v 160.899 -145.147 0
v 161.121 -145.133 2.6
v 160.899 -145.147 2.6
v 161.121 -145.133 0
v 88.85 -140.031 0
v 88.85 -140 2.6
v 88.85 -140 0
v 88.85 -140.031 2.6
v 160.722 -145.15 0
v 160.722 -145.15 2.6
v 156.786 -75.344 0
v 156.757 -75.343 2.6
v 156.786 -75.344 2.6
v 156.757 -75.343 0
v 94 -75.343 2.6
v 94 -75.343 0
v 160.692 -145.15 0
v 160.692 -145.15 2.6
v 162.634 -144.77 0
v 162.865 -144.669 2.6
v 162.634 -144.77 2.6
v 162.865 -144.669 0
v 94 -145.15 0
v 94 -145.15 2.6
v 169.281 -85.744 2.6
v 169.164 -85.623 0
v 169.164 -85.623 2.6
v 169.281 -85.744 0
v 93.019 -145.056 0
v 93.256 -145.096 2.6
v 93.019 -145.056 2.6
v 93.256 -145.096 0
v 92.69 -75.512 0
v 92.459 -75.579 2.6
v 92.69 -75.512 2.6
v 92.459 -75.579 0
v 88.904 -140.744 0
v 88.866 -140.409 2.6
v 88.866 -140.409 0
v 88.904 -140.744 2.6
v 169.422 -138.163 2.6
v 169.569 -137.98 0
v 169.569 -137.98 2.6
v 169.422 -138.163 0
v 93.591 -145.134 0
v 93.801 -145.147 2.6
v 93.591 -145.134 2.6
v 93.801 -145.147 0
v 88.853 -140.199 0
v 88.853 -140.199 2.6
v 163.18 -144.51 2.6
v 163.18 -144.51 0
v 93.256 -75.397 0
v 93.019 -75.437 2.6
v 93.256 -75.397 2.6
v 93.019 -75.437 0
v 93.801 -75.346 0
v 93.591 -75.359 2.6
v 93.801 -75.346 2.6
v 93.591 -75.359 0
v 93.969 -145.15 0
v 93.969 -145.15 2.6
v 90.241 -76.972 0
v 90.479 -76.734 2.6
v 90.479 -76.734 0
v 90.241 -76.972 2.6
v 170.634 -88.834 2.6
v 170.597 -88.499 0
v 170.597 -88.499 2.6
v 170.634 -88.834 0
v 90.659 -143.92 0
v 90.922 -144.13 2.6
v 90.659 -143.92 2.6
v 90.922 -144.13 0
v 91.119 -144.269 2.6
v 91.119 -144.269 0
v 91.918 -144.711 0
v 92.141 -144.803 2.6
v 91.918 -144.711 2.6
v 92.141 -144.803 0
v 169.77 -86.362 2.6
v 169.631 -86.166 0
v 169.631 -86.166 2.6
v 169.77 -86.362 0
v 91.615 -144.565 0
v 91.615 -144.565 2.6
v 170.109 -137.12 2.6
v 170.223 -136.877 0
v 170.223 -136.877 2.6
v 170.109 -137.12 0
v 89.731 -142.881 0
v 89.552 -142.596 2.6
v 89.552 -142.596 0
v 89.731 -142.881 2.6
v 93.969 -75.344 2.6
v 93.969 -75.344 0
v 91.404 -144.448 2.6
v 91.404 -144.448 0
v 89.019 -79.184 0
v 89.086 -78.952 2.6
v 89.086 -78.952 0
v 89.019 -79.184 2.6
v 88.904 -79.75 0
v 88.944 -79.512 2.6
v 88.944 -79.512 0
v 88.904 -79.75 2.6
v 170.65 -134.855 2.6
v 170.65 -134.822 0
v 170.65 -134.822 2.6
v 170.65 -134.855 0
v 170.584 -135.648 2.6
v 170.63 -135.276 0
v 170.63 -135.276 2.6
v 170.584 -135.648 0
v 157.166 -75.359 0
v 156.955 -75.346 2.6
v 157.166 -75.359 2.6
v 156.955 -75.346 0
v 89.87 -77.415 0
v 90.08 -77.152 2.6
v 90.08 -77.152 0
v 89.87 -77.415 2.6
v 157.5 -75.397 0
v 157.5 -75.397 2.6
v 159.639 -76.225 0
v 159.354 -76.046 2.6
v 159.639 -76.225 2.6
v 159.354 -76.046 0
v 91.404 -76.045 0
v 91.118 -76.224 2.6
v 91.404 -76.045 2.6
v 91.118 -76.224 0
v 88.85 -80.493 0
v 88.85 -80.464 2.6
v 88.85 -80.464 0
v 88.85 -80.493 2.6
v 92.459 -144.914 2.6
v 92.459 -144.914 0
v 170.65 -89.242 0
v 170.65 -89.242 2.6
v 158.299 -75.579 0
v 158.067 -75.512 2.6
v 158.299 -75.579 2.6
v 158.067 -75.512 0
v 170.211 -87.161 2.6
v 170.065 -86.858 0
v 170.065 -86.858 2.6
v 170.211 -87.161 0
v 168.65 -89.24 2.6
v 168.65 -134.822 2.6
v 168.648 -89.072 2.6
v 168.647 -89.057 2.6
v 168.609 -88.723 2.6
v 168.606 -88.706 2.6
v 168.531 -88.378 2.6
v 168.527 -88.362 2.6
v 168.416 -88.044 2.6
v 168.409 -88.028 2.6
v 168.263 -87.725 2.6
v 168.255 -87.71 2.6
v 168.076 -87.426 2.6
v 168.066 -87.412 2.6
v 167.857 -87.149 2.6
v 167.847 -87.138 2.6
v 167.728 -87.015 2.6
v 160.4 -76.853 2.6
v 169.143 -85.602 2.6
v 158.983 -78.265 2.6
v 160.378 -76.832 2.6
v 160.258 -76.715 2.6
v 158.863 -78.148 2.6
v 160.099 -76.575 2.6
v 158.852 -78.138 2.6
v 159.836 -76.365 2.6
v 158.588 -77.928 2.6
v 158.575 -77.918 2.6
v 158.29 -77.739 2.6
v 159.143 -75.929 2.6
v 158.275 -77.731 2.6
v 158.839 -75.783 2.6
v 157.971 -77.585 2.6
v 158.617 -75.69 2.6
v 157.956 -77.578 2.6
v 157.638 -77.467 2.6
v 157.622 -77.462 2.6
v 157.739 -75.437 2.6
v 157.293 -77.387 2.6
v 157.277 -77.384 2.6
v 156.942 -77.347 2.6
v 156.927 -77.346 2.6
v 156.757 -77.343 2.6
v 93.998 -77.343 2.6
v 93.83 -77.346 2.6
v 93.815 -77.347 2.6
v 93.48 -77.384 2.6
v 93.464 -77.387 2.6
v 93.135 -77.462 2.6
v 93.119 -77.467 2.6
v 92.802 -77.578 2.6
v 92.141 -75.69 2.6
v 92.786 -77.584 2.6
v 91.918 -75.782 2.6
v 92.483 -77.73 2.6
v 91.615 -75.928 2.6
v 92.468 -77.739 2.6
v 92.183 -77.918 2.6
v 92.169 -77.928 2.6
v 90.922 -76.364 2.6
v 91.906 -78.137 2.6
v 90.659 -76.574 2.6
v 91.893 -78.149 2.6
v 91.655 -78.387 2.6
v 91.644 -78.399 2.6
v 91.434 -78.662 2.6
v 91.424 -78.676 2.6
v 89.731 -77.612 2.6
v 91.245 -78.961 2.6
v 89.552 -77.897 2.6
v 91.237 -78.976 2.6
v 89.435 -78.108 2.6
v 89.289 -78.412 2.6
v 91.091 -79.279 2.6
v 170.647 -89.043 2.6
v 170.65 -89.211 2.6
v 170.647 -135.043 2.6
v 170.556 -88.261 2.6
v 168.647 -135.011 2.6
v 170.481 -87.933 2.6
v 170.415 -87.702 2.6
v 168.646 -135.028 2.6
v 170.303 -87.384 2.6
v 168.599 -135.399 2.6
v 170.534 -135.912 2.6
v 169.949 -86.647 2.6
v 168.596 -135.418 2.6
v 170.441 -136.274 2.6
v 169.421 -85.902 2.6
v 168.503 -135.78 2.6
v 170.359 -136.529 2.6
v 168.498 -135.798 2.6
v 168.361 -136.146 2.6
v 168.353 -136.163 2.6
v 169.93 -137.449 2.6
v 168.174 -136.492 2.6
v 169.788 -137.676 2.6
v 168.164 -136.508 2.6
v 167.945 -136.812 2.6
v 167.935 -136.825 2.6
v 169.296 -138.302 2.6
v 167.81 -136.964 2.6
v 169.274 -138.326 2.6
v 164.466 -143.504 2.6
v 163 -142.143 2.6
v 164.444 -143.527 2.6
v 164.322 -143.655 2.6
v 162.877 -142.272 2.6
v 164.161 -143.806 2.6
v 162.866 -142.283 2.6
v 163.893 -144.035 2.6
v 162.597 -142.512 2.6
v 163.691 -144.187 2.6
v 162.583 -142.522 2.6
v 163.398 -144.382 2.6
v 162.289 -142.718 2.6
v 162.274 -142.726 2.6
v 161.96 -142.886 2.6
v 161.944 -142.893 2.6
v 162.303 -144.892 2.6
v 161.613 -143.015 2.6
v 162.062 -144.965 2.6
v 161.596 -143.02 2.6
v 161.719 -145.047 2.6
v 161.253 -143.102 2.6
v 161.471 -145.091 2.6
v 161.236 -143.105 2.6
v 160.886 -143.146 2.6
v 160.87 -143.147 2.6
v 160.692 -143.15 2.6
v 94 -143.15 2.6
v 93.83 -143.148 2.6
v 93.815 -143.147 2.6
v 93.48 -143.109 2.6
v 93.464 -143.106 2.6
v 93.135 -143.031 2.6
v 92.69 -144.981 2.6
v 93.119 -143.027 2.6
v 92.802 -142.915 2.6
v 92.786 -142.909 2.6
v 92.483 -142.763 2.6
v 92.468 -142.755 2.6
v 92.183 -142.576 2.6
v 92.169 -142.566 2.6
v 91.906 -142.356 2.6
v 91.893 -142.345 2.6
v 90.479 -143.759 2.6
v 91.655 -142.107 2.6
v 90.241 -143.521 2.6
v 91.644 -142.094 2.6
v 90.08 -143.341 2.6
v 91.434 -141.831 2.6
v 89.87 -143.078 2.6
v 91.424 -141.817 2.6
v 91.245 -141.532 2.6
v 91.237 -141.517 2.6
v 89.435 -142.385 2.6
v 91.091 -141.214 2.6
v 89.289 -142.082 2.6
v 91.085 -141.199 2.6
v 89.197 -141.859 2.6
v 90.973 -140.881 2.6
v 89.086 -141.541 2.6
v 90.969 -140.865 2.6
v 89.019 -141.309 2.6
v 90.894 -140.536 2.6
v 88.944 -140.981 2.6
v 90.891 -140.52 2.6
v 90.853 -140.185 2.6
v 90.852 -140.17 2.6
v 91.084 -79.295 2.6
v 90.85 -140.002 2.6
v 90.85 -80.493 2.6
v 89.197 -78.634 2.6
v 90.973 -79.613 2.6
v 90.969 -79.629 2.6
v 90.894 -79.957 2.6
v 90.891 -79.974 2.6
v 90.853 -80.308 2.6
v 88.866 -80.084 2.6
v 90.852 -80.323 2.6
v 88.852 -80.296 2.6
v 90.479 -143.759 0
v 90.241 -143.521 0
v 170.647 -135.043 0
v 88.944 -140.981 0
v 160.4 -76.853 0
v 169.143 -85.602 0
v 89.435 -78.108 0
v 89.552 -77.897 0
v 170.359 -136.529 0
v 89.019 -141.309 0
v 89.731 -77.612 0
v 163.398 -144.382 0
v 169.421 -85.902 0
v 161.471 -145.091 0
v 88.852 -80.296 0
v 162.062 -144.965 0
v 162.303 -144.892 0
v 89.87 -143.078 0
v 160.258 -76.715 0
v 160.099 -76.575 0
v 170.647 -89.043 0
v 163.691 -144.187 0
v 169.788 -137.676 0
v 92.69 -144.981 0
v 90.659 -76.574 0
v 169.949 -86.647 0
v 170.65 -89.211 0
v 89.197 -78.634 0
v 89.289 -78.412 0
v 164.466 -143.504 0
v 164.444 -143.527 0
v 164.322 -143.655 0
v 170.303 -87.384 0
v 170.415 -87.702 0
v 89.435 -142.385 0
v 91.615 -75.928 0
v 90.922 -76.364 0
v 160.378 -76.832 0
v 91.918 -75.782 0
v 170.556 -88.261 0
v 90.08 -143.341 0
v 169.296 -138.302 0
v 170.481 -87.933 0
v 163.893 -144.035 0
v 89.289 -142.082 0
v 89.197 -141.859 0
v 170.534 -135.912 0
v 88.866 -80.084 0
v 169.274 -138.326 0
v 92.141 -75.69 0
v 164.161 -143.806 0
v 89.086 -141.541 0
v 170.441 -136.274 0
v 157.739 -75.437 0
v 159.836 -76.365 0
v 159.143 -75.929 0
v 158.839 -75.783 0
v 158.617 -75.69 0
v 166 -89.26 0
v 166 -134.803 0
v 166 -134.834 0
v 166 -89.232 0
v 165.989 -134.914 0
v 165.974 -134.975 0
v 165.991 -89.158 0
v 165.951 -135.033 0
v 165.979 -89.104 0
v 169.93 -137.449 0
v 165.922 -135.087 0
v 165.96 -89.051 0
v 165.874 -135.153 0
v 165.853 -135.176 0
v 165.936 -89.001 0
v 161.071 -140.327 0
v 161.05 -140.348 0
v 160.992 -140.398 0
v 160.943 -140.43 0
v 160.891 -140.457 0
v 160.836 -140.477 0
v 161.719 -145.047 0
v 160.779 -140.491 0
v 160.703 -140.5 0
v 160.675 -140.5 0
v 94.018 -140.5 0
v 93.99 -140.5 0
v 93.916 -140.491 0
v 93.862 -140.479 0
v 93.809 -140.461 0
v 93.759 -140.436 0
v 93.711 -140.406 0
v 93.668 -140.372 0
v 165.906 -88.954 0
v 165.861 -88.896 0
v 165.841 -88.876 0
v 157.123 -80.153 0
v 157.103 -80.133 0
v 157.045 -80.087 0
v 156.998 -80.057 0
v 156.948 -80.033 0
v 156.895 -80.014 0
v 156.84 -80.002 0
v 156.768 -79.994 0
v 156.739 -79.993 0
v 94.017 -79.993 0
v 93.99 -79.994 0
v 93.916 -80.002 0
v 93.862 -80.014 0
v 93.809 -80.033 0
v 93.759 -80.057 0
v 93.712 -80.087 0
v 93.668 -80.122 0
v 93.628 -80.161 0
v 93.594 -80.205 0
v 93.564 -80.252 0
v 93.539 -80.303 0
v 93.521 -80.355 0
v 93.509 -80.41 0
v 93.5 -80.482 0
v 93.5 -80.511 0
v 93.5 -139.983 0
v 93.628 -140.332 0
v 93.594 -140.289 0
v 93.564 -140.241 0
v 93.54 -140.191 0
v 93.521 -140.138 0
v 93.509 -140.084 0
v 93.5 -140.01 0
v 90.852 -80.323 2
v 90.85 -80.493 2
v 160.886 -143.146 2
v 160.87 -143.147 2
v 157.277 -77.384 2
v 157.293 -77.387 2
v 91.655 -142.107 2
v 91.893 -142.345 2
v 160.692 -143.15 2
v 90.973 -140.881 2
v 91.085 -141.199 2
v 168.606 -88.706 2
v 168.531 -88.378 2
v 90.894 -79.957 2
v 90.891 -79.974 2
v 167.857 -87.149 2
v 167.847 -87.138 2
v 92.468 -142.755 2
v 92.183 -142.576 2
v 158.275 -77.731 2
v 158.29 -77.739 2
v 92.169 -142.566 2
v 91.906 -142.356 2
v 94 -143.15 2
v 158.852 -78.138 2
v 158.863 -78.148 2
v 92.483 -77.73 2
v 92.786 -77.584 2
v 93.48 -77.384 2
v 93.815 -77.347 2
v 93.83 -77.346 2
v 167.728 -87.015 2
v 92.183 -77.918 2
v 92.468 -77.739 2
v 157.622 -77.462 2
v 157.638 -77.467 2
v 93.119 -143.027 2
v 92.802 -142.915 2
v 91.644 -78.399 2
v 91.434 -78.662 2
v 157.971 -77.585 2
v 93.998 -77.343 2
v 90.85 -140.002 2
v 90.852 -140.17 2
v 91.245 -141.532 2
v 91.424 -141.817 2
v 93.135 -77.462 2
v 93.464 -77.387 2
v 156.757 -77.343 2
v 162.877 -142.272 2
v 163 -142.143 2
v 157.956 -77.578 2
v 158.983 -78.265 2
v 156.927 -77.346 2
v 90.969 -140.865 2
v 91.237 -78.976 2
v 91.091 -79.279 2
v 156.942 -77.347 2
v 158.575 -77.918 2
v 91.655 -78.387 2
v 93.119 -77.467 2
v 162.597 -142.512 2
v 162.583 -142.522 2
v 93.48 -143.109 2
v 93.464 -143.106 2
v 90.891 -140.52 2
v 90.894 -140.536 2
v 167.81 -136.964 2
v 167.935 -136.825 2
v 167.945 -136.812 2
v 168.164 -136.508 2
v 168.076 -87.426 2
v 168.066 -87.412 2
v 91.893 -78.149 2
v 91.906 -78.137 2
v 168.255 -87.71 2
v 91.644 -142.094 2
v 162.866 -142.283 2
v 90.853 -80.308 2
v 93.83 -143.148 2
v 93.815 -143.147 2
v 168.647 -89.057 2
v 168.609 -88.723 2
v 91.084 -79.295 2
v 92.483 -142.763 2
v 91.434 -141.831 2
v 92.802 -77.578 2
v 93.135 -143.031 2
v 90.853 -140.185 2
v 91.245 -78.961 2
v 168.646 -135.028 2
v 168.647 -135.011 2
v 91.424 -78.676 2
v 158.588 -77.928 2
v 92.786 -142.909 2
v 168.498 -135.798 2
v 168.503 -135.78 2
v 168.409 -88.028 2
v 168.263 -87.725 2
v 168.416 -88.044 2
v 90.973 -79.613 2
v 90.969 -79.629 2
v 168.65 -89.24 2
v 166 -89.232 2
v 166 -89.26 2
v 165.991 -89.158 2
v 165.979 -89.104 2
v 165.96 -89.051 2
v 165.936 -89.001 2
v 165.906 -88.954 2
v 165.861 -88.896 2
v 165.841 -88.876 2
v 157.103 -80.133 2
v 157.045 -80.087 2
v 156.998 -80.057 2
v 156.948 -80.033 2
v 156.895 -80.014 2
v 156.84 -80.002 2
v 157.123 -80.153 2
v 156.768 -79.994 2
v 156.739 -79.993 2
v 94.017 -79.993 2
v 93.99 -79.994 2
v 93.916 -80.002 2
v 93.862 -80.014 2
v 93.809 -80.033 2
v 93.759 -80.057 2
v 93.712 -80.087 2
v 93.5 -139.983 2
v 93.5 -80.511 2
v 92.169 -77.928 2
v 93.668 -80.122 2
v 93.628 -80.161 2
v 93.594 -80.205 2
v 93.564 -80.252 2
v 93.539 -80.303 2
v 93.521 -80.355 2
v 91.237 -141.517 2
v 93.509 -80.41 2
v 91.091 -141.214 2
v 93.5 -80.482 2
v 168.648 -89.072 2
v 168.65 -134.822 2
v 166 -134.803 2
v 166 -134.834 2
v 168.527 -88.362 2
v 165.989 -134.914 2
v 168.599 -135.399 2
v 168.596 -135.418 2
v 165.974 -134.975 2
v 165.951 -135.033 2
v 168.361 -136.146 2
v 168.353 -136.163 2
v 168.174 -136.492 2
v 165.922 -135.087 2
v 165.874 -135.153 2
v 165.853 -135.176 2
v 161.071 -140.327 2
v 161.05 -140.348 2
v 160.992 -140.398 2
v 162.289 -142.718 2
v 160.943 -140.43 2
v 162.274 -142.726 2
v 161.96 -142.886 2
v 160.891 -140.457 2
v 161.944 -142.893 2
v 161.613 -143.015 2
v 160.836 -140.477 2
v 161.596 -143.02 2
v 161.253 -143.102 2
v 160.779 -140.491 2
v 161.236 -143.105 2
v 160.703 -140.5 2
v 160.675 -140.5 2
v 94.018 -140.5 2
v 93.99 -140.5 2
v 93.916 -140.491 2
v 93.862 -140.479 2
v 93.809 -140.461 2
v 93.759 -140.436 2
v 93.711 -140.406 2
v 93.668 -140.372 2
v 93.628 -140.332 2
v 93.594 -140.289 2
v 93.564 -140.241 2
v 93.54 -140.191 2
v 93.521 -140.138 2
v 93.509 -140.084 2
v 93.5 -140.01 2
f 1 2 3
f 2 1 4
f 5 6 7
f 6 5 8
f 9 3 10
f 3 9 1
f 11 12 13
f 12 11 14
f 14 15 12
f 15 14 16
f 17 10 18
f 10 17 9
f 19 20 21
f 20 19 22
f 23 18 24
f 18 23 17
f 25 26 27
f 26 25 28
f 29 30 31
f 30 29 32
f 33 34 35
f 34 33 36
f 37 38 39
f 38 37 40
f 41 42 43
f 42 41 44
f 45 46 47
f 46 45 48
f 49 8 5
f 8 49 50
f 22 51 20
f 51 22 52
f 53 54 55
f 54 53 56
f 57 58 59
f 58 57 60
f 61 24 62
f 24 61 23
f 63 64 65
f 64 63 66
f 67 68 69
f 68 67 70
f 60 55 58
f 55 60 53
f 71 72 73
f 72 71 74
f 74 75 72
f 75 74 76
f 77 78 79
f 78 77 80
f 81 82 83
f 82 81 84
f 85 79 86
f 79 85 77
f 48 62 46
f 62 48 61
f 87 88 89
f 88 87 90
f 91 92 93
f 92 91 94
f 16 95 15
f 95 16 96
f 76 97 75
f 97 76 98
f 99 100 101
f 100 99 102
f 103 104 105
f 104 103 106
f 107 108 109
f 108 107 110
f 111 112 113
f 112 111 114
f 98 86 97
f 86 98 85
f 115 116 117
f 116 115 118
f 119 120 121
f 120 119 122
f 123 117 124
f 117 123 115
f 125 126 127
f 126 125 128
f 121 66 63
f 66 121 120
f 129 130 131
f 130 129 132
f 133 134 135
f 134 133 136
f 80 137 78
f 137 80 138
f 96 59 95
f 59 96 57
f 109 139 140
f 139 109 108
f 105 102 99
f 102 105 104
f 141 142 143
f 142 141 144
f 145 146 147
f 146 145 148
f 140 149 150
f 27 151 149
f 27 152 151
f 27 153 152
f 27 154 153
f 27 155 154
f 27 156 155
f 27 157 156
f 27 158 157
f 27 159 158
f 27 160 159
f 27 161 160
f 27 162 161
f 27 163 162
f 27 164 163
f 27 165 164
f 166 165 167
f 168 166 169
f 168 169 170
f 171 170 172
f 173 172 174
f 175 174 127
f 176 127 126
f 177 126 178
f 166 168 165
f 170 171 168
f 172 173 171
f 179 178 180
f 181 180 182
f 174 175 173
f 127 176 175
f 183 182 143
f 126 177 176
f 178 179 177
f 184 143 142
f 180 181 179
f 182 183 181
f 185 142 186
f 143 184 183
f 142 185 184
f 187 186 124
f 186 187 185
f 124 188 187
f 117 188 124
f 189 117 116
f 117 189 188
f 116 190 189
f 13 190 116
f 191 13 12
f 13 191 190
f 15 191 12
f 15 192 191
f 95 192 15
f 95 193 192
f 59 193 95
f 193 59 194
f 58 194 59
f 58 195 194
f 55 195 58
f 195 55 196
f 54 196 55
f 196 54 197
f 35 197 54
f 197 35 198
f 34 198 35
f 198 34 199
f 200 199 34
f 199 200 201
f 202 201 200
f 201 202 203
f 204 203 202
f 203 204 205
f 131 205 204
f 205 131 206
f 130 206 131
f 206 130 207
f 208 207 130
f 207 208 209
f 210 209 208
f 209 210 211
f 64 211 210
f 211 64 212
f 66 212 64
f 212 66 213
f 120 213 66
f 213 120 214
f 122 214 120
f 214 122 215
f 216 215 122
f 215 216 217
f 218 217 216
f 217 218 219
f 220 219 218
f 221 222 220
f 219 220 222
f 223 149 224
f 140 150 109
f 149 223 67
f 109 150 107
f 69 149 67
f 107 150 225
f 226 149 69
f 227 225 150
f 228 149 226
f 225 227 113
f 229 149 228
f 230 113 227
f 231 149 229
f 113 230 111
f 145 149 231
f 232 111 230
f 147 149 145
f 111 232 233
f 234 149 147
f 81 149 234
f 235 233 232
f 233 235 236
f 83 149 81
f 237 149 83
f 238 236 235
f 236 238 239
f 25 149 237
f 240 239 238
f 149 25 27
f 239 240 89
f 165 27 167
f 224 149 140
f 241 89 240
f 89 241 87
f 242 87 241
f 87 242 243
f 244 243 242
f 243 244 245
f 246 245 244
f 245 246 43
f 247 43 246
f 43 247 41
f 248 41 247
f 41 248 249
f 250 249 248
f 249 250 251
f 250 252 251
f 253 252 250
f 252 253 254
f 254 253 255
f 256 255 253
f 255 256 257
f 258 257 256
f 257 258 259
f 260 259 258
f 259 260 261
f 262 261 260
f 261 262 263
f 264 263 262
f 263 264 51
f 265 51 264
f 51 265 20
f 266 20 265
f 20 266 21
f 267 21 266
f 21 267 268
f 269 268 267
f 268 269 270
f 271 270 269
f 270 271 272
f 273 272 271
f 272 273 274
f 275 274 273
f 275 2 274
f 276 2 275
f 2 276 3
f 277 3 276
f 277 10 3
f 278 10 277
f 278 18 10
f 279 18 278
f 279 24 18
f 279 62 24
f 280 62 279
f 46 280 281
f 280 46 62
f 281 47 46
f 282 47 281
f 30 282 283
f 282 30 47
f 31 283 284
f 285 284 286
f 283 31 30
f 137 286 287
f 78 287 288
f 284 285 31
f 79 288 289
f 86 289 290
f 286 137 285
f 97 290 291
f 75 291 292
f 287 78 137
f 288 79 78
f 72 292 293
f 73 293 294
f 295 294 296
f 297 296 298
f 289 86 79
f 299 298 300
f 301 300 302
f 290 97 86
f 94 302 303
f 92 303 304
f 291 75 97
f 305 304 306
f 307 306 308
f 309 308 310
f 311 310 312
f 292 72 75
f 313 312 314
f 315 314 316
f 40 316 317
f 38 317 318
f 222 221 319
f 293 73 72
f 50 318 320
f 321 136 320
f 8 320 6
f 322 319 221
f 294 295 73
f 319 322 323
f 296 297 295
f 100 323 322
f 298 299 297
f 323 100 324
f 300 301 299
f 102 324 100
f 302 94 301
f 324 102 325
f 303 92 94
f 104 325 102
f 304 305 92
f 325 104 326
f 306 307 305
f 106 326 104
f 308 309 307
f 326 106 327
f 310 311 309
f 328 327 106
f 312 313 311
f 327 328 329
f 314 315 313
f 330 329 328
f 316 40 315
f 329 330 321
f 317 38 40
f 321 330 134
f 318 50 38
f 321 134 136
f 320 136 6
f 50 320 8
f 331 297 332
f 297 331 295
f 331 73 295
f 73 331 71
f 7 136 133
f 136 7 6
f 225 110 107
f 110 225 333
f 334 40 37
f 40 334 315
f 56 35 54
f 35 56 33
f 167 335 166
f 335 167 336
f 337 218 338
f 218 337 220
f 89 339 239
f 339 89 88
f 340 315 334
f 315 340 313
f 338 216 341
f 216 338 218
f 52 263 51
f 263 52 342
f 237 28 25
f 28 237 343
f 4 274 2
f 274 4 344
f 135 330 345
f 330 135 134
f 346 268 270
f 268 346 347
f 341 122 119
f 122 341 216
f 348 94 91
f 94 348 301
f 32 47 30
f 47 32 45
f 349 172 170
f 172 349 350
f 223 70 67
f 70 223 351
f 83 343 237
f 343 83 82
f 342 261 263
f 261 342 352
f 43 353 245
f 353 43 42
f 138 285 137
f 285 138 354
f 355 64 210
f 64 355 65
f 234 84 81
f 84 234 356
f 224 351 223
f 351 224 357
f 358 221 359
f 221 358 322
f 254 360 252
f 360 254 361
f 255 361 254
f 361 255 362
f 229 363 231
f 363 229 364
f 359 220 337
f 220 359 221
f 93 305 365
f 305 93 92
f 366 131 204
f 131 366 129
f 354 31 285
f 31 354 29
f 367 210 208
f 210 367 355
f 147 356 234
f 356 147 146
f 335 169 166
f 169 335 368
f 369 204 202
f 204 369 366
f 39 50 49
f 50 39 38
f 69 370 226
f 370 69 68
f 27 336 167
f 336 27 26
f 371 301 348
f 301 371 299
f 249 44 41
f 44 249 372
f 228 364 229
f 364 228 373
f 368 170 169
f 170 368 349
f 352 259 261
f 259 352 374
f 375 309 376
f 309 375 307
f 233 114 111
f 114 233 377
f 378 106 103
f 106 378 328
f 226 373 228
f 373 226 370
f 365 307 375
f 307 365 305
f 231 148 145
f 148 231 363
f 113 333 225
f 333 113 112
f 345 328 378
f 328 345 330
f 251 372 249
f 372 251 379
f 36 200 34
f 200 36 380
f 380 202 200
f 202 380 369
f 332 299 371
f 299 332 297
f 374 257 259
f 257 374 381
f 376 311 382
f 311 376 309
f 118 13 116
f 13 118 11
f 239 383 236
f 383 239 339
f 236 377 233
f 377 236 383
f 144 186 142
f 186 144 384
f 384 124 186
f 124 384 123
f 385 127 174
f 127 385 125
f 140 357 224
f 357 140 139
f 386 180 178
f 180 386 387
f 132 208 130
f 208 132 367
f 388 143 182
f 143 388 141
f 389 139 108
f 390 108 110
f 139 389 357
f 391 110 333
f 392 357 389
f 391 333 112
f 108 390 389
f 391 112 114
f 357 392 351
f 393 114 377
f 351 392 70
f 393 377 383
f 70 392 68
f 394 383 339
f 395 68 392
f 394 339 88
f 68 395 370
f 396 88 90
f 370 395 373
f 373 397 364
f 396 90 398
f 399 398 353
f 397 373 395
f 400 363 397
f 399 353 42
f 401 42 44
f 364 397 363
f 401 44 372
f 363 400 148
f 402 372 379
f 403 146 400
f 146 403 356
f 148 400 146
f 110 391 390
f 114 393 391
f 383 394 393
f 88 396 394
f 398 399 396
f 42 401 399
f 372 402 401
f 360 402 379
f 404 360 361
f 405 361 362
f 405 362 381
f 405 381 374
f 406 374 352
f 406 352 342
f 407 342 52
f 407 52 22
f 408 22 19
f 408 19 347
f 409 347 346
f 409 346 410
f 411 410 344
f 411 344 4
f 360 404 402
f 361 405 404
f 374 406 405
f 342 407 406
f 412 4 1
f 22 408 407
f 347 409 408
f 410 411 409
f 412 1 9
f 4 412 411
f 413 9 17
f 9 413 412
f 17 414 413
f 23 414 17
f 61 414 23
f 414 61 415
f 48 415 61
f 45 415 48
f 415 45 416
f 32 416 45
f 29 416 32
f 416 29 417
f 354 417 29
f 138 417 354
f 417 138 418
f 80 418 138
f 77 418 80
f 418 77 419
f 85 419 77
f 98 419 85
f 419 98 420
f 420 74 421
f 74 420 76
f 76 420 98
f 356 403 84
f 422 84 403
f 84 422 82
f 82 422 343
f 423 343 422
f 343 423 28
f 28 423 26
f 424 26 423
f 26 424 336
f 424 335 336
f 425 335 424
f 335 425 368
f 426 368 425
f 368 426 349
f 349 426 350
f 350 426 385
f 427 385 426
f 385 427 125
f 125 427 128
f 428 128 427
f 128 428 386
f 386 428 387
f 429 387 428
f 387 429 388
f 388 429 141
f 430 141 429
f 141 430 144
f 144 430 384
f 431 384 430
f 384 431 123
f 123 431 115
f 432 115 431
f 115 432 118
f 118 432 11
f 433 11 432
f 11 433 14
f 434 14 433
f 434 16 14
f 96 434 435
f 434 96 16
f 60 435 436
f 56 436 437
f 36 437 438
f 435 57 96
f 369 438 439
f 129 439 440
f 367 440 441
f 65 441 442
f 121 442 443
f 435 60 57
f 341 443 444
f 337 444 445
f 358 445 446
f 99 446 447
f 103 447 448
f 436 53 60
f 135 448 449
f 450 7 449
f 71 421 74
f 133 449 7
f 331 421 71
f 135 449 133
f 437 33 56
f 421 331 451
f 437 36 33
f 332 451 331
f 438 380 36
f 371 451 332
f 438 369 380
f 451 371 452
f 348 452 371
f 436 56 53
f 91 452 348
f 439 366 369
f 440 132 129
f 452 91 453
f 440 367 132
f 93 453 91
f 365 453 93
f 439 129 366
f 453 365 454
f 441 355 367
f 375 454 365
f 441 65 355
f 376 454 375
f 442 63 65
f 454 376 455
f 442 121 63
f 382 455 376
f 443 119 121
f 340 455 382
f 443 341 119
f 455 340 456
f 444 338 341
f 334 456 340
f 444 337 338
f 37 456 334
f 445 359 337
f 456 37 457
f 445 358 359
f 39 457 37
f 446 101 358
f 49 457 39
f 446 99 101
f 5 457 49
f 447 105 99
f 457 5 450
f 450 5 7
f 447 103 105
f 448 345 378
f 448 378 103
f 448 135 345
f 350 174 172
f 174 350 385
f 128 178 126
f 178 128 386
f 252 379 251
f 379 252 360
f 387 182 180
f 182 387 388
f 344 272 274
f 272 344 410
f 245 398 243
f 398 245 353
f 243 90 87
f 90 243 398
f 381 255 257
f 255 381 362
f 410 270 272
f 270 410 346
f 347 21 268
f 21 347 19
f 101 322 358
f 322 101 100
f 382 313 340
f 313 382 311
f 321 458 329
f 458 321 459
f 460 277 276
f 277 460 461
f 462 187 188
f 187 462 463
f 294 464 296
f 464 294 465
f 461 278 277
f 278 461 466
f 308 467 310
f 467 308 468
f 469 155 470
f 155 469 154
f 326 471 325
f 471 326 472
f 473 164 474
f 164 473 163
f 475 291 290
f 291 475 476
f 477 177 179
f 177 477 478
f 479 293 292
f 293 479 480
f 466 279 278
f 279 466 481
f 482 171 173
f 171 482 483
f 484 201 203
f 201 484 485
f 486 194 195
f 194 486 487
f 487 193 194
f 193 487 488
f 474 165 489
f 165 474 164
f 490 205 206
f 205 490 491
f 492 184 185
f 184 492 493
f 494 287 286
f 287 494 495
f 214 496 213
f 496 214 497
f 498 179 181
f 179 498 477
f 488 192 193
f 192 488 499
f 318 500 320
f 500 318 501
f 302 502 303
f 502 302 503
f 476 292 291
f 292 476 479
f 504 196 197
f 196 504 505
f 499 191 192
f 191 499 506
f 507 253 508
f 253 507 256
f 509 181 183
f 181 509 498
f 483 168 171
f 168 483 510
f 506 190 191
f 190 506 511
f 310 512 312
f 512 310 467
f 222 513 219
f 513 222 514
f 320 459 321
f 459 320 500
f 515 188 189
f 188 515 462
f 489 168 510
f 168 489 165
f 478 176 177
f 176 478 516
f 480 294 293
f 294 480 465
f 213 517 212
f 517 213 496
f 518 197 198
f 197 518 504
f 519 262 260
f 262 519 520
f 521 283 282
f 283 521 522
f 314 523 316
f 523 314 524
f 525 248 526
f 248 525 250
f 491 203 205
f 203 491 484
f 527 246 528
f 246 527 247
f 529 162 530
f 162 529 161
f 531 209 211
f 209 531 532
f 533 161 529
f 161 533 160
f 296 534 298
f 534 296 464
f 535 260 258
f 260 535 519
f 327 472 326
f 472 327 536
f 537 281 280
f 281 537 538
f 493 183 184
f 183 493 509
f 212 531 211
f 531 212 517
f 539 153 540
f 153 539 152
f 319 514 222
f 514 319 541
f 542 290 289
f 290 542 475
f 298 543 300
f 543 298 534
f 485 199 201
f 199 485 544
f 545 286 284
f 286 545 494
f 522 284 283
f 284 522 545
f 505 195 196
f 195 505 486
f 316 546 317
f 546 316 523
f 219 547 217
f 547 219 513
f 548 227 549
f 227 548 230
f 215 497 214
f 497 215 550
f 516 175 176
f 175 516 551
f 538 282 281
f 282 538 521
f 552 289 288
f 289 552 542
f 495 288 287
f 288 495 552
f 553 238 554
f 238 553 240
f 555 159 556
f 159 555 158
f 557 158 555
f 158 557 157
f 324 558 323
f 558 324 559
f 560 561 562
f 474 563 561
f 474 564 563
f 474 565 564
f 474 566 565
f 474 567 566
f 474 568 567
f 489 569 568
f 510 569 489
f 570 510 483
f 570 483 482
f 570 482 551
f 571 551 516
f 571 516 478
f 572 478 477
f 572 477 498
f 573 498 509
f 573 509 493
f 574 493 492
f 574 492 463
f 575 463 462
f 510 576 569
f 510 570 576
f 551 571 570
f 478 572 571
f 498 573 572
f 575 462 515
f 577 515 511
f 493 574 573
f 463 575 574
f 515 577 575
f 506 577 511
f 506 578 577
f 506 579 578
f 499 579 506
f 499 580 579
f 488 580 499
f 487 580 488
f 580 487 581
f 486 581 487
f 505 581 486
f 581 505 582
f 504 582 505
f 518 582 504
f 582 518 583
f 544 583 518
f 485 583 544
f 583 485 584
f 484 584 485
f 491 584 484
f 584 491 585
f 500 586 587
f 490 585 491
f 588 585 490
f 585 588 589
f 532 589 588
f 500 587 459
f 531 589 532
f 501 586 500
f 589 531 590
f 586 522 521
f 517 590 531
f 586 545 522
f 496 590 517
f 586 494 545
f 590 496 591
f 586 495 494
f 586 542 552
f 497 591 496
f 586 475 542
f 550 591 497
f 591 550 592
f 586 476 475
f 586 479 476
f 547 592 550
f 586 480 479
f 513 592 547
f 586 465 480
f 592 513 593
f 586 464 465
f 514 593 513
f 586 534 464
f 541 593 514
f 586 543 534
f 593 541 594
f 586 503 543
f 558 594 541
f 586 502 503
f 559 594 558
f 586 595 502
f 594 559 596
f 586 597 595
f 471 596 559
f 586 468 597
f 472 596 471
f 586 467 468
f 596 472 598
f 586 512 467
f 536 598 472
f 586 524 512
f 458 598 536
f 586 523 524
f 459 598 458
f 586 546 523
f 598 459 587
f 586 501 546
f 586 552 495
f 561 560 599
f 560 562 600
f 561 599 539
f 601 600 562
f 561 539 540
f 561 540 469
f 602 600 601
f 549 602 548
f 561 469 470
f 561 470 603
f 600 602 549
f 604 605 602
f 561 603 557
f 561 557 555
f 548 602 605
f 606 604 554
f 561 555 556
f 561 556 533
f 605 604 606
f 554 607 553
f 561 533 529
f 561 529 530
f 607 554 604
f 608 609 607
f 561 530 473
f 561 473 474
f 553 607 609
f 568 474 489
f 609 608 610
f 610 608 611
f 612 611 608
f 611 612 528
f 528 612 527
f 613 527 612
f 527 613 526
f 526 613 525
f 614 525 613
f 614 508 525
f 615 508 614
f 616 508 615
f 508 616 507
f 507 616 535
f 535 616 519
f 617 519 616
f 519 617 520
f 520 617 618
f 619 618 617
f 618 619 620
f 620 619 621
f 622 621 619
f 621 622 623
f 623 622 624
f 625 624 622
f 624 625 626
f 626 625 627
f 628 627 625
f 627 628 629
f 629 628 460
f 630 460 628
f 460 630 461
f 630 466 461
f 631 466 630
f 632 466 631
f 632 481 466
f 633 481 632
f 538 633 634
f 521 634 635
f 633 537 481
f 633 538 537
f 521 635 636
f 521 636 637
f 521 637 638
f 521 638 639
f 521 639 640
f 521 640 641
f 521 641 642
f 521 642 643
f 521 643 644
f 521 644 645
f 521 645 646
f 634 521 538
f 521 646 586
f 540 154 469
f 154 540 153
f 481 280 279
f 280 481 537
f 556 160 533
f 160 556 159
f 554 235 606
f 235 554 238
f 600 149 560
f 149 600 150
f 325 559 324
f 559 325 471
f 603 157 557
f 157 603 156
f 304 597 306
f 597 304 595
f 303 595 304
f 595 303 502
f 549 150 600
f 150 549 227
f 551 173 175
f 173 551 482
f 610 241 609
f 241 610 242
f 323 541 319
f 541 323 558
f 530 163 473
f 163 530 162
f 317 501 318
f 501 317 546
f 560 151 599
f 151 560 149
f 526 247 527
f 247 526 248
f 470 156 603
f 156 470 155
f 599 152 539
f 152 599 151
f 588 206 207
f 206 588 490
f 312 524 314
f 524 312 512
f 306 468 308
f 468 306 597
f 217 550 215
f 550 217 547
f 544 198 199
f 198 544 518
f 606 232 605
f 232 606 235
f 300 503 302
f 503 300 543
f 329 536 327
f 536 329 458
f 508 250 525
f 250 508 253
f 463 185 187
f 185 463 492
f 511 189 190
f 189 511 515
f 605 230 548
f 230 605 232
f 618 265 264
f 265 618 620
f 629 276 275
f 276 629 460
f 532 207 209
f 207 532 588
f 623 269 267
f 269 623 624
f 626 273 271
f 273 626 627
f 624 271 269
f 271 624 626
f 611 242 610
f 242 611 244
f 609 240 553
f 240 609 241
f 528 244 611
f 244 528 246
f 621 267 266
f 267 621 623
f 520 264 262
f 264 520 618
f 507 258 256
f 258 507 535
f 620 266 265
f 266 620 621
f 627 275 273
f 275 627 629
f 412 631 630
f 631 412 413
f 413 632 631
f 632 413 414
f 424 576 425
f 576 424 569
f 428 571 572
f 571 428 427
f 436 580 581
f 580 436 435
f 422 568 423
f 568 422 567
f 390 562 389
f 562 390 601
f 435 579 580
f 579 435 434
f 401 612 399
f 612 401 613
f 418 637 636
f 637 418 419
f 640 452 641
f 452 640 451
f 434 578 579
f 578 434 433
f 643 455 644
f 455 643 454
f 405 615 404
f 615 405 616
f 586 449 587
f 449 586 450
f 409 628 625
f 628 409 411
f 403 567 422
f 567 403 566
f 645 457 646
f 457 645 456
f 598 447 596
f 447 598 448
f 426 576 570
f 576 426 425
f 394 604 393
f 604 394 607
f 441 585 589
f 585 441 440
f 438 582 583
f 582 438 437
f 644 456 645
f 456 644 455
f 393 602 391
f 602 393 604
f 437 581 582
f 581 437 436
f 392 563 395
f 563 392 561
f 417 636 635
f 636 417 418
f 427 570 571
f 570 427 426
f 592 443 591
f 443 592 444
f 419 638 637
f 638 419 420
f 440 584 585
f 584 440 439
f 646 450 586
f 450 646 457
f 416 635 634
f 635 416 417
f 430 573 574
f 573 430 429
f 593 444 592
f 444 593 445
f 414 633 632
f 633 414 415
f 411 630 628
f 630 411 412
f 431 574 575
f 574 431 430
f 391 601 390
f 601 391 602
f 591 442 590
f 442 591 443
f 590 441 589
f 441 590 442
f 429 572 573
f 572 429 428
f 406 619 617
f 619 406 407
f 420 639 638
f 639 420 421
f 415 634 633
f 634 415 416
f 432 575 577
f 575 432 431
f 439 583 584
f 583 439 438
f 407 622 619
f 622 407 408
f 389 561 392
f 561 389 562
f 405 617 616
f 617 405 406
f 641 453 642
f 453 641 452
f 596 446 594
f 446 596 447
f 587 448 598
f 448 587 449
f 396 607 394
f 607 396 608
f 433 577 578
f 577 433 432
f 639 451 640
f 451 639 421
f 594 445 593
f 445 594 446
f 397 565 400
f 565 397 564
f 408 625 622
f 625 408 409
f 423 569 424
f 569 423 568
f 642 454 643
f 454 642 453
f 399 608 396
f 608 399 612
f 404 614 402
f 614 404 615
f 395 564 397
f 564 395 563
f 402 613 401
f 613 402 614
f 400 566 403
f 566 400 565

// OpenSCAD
// generated by tools/gen_stencil.py — do not edit by hand
// board: master-pcb.kicad_pcb
$fn = 48;
module board_outline() {
    polygon(points=[[156.9252,-77.4957], [157.2599,-77.5334], [157.5883,-77.6084], [157.9062,-77.7197], [158.2097,-77.8659], [158.4948,-78.0452], [158.7581,-78.2553], [158.8788,-78.3728], [167.6220,-87.1214], [167.7393,-87.2421], [167.9490,-87.5053], [168.1280,-87.7903], [168.2740,-88.0936], [168.3851,-88.4113], [168.4600,-88.7394], [168.4976,-89.0738], [168.5000,-89.2421], [168.5000,-134.8219], [168.4971,-135.0091], [168.4506,-135.3805], [168.3581,-135.7432], [168.2213,-136.0916], [168.0422,-136.4203], [167.8236,-136.7242], [167.6984,-136.8633], [162.8902,-142.0414], [162.7684,-142.1688], [162.4998,-142.3973], [162.2063,-142.5927], [161.8920,-142.7523], [161.5611,-142.8740], [161.2182,-142.9561], [160.8681,-142.9975], [160.6918,-143.0000], [94.0000,-143.0000], [93.8317,-142.9976], [93.4971,-142.9599], [93.1688,-142.8850], [92.8510,-142.7738], [92.5477,-142.6277], [92.2626,-142.4486], [91.9994,-142.2387], [91.7613,-142.0006], [91.5514,-141.7374], [91.3723,-141.4523], [91.2262,-141.1490], [91.1150,-140.8312], [91.0401,-140.5029], [91.0024,-140.1683], [91.0000,-140.0000], [91.0000,-80.4934], [91.0023,-80.3251], [91.0400,-79.9905], [91.1149,-79.6623], [91.2261,-79.3445], [91.3722,-79.0411], [91.5513,-78.7560], [91.7612,-78.4928], [91.9993,-78.2547], [92.2626,-78.0448], [92.5477,-77.8656], [92.8510,-77.7196], [93.1688,-77.6084], [93.4971,-77.5335], [93.8317,-77.4958], [94.0000,-77.4934], [156.7568,-77.4934]]);
}
// Support jig for pasting the SECOND side: the board rests on a
// 2.5mm ledge and everything inside is open, so parts already
// placed on side one hang free instead of being crushed.
// The rebate is shallower than the board, leaving 1.0mm of edge
// proud so the stencil's skirt still has something to grip.
difference() {
  linear_extrude(height=2.600) offset(r=2.150) board_outline();
  translate([0,0,2.000]) linear_extrude(height=1.600) offset(r=0.150) board_outline();
  translate([0,0,-1]) linear_extrude(height=4.600) offset(r=-2.500) board_outline();
}
